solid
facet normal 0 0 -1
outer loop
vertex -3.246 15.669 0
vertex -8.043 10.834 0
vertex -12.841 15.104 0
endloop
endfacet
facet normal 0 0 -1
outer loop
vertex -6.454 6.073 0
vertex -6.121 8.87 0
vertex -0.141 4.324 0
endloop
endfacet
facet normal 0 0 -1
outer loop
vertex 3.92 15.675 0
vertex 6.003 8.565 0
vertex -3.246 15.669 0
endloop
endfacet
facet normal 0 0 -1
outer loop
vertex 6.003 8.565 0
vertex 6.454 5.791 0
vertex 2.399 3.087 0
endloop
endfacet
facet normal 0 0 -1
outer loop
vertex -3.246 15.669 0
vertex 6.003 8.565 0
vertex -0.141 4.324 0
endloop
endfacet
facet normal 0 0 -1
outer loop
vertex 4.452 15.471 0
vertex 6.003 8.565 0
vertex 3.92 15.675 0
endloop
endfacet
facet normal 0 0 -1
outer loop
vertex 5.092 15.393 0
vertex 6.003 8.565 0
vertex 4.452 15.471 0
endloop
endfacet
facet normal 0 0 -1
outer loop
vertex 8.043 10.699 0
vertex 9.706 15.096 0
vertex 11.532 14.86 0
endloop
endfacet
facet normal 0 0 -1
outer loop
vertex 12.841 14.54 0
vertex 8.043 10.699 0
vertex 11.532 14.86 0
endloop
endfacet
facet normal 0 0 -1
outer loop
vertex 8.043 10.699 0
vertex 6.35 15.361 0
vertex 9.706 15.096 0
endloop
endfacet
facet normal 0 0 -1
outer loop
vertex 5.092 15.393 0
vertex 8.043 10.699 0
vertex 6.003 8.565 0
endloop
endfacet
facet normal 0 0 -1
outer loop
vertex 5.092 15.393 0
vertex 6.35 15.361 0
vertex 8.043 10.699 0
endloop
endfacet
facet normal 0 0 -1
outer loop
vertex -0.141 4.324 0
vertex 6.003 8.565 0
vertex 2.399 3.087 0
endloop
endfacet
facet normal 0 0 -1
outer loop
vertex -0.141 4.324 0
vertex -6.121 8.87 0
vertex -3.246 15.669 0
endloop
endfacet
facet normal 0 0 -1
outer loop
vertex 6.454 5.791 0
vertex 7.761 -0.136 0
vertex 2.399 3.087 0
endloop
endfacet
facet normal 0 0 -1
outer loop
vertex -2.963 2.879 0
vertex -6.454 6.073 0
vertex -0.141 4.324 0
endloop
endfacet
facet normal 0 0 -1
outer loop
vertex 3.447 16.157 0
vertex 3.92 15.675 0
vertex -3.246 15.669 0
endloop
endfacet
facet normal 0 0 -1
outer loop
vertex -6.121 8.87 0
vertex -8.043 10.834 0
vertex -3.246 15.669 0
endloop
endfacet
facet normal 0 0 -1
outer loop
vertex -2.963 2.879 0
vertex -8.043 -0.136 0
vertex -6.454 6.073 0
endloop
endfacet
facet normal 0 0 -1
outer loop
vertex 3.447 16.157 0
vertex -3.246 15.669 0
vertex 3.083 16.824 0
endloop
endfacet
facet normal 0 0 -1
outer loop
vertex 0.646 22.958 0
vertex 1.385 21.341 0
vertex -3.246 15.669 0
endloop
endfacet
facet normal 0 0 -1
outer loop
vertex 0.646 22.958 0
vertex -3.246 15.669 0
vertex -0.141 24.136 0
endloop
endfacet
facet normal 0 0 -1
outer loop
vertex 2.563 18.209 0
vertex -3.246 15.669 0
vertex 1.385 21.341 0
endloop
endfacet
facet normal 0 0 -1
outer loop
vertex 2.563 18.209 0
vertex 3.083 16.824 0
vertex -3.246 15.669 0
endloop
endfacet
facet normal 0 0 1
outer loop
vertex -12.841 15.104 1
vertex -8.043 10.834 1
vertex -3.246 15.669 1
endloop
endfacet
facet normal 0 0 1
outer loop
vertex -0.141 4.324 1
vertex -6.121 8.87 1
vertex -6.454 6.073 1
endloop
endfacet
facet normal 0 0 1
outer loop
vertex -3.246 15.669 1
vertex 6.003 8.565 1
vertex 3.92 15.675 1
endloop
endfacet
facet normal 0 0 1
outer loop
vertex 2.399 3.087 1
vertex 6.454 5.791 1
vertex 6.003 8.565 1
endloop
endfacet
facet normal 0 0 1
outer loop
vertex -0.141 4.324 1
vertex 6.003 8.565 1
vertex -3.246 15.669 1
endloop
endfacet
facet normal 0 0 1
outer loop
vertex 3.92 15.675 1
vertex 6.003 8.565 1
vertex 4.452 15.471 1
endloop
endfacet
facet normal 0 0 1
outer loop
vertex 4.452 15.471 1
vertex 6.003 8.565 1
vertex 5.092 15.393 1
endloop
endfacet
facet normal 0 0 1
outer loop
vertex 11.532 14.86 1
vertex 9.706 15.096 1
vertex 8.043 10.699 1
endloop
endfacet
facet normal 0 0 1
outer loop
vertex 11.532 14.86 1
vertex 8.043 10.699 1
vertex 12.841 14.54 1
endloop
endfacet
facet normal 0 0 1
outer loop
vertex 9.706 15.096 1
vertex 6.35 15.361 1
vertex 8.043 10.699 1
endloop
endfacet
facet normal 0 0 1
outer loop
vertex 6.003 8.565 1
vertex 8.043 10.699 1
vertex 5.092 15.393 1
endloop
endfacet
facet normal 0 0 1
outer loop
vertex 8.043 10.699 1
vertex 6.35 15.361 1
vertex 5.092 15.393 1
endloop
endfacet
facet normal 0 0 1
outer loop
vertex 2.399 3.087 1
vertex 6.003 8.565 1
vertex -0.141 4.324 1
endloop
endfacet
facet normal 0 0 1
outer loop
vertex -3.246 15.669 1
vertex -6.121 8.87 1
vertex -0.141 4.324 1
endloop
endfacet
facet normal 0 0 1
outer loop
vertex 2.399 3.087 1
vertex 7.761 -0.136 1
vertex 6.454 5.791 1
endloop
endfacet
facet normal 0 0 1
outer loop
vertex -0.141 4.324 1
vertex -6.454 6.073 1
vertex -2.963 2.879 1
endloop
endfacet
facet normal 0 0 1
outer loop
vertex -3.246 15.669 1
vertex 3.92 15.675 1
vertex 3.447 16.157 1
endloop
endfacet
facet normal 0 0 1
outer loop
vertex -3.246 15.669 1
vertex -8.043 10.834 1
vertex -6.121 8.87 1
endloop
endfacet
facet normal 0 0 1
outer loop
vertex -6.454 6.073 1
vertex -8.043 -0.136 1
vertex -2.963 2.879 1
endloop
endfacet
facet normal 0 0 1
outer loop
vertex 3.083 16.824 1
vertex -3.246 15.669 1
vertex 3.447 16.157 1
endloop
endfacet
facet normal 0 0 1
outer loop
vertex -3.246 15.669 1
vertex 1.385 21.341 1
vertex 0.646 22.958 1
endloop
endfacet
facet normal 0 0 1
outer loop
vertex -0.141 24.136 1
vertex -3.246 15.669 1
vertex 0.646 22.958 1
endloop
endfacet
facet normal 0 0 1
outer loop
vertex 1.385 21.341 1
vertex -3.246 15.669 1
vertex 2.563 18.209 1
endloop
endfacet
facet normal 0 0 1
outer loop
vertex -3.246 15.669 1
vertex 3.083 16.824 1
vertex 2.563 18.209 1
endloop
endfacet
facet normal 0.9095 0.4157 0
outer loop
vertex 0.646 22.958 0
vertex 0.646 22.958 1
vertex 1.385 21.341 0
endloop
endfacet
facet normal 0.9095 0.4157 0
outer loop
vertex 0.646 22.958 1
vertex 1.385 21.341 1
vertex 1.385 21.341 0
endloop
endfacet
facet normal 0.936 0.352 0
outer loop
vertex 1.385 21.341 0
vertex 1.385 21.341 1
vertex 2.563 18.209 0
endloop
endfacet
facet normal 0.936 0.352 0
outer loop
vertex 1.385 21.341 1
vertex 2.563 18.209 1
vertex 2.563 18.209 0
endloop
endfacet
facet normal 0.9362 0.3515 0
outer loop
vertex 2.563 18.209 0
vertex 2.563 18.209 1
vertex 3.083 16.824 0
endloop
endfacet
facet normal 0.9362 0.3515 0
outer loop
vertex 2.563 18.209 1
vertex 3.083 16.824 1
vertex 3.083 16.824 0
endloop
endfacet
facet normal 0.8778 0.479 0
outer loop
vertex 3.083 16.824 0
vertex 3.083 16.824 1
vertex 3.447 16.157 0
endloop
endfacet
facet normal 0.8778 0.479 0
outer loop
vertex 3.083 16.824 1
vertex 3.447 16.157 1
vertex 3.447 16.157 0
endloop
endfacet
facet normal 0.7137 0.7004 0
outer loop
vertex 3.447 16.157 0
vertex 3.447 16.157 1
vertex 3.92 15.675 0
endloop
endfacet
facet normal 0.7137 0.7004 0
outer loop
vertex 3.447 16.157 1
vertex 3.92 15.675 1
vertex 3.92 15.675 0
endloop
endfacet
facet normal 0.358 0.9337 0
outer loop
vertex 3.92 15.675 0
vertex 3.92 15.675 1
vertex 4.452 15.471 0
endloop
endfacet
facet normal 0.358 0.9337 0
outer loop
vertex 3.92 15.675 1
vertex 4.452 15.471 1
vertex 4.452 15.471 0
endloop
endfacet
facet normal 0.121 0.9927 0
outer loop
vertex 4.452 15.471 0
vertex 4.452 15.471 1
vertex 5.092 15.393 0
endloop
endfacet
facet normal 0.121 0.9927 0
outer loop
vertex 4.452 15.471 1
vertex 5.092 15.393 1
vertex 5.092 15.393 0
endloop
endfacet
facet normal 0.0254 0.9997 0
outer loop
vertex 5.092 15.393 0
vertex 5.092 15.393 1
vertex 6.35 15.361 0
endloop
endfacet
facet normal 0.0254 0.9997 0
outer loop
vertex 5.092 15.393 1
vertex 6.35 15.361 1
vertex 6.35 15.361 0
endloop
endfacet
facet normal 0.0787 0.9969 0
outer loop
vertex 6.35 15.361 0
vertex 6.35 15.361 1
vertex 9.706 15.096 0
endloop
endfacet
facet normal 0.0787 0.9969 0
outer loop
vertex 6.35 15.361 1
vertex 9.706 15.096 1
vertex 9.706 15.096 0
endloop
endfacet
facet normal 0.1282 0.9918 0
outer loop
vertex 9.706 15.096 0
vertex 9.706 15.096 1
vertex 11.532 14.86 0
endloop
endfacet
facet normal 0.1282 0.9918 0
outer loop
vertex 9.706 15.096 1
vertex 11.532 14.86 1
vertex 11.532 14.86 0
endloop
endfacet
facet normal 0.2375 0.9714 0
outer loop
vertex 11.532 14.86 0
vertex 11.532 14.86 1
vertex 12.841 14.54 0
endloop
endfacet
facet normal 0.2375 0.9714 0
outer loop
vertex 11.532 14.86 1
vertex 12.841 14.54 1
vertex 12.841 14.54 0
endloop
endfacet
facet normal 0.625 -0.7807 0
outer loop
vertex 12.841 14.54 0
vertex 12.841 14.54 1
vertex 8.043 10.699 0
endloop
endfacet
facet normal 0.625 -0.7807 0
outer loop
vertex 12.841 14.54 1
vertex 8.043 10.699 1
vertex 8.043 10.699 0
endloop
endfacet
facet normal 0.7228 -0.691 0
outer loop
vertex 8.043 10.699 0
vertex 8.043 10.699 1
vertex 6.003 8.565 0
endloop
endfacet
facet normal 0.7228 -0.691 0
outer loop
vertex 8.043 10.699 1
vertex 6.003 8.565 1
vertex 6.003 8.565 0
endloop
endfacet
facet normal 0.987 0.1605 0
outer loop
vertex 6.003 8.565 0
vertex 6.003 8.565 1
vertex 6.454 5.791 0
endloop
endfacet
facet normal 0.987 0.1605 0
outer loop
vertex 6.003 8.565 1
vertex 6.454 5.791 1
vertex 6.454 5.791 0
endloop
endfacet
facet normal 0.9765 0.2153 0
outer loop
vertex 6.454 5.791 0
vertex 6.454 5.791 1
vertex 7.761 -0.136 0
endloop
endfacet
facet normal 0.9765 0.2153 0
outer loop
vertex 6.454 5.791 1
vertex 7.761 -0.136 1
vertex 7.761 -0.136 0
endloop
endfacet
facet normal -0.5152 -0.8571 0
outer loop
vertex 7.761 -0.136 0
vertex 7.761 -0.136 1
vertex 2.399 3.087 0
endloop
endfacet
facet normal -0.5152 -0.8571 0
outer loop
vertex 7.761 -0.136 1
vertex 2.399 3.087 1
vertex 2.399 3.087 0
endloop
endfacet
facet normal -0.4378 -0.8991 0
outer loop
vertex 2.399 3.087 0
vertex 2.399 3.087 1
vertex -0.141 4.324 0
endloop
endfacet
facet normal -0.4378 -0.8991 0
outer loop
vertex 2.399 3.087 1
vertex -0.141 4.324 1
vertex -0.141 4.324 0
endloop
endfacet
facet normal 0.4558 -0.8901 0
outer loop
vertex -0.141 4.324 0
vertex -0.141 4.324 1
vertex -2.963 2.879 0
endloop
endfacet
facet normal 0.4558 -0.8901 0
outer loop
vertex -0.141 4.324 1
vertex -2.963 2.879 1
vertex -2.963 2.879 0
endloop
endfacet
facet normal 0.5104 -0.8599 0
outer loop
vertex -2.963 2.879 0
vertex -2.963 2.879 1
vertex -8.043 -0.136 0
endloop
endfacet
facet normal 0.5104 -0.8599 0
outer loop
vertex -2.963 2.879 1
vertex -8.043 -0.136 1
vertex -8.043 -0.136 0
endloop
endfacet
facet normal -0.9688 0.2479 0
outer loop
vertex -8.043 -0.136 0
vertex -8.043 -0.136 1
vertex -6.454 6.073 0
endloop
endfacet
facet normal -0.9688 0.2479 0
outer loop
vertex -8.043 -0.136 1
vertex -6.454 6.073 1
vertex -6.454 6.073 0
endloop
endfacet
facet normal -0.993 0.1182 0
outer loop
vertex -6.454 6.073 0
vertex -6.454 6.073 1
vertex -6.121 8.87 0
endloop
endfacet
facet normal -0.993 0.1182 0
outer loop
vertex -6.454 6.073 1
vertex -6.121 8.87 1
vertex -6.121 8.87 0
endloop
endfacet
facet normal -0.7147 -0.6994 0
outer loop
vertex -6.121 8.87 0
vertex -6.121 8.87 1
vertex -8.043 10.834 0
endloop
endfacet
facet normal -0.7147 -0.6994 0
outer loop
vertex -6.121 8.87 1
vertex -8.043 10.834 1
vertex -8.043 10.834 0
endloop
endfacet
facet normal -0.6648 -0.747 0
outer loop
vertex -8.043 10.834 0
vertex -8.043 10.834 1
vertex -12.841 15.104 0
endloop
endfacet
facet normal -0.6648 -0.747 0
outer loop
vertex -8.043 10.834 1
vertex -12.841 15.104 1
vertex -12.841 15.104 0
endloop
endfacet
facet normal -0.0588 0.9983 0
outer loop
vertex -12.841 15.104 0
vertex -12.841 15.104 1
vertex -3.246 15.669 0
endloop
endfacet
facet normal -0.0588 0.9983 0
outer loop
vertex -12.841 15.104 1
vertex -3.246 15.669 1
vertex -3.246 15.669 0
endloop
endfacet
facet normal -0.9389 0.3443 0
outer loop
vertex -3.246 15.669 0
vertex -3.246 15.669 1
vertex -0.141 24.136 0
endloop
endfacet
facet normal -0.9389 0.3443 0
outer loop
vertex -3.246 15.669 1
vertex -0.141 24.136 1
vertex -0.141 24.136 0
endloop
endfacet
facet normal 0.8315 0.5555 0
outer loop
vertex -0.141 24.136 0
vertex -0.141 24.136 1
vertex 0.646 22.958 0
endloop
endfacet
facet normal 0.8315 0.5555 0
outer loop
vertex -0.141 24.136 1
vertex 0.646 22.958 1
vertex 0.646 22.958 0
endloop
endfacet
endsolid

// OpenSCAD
// Module names are of the form poly_<inkscape-path-id>().  As a result,
// you can associate a polygon in this OpenSCAD program with the corresponding
// SVG element in the Inkscape document by looking for the XML element with
// the attribute id="inkscape-path-id".

// fudge value is used to ensure that subtracted solids are a tad taller
// in the z dimension than the polygon being subtracted from.  This helps
// keep the resulting .stl file manifold.
fudge = 0.1;

module poly_Selection(h)
{
  scale([25.4/90, -25.4/90, 1]) union()
  {
    linear_extrude(height=h)
      polygon([[9.080000,-22.000000],[10.922500,-17.093750],[12.213125,-14.728281],[13.890000,-13.020000],[15.773906,-12.298125],[18.041250,-12.022500],[22.500000,-11.910000],[34.390000,-10.968750],[40.862812,-10.133906],[45.500000,-9.000000],[28.500000,4.610000],[21.270000,12.170000],[22.870000,22.000000],[27.500000,43.000000],[8.500000,31.580000],[-0.500000,27.200000],[-10.500000,32.320000],[-28.500000,43.000000],[-22.870000,21.000000],[-21.690000,11.090000],[-28.500000,4.130000],[-45.500000,-11.000000],[-11.500000,-13.000000],[-0.500000,-43.000000],[2.289219,-38.828594],[4.908750,-33.096250],[9.080000,-22.000000]]);
  }
}

module star(h)
{

poly_Selection(h);
}

translate ([0, 12, 0])
star(1);
